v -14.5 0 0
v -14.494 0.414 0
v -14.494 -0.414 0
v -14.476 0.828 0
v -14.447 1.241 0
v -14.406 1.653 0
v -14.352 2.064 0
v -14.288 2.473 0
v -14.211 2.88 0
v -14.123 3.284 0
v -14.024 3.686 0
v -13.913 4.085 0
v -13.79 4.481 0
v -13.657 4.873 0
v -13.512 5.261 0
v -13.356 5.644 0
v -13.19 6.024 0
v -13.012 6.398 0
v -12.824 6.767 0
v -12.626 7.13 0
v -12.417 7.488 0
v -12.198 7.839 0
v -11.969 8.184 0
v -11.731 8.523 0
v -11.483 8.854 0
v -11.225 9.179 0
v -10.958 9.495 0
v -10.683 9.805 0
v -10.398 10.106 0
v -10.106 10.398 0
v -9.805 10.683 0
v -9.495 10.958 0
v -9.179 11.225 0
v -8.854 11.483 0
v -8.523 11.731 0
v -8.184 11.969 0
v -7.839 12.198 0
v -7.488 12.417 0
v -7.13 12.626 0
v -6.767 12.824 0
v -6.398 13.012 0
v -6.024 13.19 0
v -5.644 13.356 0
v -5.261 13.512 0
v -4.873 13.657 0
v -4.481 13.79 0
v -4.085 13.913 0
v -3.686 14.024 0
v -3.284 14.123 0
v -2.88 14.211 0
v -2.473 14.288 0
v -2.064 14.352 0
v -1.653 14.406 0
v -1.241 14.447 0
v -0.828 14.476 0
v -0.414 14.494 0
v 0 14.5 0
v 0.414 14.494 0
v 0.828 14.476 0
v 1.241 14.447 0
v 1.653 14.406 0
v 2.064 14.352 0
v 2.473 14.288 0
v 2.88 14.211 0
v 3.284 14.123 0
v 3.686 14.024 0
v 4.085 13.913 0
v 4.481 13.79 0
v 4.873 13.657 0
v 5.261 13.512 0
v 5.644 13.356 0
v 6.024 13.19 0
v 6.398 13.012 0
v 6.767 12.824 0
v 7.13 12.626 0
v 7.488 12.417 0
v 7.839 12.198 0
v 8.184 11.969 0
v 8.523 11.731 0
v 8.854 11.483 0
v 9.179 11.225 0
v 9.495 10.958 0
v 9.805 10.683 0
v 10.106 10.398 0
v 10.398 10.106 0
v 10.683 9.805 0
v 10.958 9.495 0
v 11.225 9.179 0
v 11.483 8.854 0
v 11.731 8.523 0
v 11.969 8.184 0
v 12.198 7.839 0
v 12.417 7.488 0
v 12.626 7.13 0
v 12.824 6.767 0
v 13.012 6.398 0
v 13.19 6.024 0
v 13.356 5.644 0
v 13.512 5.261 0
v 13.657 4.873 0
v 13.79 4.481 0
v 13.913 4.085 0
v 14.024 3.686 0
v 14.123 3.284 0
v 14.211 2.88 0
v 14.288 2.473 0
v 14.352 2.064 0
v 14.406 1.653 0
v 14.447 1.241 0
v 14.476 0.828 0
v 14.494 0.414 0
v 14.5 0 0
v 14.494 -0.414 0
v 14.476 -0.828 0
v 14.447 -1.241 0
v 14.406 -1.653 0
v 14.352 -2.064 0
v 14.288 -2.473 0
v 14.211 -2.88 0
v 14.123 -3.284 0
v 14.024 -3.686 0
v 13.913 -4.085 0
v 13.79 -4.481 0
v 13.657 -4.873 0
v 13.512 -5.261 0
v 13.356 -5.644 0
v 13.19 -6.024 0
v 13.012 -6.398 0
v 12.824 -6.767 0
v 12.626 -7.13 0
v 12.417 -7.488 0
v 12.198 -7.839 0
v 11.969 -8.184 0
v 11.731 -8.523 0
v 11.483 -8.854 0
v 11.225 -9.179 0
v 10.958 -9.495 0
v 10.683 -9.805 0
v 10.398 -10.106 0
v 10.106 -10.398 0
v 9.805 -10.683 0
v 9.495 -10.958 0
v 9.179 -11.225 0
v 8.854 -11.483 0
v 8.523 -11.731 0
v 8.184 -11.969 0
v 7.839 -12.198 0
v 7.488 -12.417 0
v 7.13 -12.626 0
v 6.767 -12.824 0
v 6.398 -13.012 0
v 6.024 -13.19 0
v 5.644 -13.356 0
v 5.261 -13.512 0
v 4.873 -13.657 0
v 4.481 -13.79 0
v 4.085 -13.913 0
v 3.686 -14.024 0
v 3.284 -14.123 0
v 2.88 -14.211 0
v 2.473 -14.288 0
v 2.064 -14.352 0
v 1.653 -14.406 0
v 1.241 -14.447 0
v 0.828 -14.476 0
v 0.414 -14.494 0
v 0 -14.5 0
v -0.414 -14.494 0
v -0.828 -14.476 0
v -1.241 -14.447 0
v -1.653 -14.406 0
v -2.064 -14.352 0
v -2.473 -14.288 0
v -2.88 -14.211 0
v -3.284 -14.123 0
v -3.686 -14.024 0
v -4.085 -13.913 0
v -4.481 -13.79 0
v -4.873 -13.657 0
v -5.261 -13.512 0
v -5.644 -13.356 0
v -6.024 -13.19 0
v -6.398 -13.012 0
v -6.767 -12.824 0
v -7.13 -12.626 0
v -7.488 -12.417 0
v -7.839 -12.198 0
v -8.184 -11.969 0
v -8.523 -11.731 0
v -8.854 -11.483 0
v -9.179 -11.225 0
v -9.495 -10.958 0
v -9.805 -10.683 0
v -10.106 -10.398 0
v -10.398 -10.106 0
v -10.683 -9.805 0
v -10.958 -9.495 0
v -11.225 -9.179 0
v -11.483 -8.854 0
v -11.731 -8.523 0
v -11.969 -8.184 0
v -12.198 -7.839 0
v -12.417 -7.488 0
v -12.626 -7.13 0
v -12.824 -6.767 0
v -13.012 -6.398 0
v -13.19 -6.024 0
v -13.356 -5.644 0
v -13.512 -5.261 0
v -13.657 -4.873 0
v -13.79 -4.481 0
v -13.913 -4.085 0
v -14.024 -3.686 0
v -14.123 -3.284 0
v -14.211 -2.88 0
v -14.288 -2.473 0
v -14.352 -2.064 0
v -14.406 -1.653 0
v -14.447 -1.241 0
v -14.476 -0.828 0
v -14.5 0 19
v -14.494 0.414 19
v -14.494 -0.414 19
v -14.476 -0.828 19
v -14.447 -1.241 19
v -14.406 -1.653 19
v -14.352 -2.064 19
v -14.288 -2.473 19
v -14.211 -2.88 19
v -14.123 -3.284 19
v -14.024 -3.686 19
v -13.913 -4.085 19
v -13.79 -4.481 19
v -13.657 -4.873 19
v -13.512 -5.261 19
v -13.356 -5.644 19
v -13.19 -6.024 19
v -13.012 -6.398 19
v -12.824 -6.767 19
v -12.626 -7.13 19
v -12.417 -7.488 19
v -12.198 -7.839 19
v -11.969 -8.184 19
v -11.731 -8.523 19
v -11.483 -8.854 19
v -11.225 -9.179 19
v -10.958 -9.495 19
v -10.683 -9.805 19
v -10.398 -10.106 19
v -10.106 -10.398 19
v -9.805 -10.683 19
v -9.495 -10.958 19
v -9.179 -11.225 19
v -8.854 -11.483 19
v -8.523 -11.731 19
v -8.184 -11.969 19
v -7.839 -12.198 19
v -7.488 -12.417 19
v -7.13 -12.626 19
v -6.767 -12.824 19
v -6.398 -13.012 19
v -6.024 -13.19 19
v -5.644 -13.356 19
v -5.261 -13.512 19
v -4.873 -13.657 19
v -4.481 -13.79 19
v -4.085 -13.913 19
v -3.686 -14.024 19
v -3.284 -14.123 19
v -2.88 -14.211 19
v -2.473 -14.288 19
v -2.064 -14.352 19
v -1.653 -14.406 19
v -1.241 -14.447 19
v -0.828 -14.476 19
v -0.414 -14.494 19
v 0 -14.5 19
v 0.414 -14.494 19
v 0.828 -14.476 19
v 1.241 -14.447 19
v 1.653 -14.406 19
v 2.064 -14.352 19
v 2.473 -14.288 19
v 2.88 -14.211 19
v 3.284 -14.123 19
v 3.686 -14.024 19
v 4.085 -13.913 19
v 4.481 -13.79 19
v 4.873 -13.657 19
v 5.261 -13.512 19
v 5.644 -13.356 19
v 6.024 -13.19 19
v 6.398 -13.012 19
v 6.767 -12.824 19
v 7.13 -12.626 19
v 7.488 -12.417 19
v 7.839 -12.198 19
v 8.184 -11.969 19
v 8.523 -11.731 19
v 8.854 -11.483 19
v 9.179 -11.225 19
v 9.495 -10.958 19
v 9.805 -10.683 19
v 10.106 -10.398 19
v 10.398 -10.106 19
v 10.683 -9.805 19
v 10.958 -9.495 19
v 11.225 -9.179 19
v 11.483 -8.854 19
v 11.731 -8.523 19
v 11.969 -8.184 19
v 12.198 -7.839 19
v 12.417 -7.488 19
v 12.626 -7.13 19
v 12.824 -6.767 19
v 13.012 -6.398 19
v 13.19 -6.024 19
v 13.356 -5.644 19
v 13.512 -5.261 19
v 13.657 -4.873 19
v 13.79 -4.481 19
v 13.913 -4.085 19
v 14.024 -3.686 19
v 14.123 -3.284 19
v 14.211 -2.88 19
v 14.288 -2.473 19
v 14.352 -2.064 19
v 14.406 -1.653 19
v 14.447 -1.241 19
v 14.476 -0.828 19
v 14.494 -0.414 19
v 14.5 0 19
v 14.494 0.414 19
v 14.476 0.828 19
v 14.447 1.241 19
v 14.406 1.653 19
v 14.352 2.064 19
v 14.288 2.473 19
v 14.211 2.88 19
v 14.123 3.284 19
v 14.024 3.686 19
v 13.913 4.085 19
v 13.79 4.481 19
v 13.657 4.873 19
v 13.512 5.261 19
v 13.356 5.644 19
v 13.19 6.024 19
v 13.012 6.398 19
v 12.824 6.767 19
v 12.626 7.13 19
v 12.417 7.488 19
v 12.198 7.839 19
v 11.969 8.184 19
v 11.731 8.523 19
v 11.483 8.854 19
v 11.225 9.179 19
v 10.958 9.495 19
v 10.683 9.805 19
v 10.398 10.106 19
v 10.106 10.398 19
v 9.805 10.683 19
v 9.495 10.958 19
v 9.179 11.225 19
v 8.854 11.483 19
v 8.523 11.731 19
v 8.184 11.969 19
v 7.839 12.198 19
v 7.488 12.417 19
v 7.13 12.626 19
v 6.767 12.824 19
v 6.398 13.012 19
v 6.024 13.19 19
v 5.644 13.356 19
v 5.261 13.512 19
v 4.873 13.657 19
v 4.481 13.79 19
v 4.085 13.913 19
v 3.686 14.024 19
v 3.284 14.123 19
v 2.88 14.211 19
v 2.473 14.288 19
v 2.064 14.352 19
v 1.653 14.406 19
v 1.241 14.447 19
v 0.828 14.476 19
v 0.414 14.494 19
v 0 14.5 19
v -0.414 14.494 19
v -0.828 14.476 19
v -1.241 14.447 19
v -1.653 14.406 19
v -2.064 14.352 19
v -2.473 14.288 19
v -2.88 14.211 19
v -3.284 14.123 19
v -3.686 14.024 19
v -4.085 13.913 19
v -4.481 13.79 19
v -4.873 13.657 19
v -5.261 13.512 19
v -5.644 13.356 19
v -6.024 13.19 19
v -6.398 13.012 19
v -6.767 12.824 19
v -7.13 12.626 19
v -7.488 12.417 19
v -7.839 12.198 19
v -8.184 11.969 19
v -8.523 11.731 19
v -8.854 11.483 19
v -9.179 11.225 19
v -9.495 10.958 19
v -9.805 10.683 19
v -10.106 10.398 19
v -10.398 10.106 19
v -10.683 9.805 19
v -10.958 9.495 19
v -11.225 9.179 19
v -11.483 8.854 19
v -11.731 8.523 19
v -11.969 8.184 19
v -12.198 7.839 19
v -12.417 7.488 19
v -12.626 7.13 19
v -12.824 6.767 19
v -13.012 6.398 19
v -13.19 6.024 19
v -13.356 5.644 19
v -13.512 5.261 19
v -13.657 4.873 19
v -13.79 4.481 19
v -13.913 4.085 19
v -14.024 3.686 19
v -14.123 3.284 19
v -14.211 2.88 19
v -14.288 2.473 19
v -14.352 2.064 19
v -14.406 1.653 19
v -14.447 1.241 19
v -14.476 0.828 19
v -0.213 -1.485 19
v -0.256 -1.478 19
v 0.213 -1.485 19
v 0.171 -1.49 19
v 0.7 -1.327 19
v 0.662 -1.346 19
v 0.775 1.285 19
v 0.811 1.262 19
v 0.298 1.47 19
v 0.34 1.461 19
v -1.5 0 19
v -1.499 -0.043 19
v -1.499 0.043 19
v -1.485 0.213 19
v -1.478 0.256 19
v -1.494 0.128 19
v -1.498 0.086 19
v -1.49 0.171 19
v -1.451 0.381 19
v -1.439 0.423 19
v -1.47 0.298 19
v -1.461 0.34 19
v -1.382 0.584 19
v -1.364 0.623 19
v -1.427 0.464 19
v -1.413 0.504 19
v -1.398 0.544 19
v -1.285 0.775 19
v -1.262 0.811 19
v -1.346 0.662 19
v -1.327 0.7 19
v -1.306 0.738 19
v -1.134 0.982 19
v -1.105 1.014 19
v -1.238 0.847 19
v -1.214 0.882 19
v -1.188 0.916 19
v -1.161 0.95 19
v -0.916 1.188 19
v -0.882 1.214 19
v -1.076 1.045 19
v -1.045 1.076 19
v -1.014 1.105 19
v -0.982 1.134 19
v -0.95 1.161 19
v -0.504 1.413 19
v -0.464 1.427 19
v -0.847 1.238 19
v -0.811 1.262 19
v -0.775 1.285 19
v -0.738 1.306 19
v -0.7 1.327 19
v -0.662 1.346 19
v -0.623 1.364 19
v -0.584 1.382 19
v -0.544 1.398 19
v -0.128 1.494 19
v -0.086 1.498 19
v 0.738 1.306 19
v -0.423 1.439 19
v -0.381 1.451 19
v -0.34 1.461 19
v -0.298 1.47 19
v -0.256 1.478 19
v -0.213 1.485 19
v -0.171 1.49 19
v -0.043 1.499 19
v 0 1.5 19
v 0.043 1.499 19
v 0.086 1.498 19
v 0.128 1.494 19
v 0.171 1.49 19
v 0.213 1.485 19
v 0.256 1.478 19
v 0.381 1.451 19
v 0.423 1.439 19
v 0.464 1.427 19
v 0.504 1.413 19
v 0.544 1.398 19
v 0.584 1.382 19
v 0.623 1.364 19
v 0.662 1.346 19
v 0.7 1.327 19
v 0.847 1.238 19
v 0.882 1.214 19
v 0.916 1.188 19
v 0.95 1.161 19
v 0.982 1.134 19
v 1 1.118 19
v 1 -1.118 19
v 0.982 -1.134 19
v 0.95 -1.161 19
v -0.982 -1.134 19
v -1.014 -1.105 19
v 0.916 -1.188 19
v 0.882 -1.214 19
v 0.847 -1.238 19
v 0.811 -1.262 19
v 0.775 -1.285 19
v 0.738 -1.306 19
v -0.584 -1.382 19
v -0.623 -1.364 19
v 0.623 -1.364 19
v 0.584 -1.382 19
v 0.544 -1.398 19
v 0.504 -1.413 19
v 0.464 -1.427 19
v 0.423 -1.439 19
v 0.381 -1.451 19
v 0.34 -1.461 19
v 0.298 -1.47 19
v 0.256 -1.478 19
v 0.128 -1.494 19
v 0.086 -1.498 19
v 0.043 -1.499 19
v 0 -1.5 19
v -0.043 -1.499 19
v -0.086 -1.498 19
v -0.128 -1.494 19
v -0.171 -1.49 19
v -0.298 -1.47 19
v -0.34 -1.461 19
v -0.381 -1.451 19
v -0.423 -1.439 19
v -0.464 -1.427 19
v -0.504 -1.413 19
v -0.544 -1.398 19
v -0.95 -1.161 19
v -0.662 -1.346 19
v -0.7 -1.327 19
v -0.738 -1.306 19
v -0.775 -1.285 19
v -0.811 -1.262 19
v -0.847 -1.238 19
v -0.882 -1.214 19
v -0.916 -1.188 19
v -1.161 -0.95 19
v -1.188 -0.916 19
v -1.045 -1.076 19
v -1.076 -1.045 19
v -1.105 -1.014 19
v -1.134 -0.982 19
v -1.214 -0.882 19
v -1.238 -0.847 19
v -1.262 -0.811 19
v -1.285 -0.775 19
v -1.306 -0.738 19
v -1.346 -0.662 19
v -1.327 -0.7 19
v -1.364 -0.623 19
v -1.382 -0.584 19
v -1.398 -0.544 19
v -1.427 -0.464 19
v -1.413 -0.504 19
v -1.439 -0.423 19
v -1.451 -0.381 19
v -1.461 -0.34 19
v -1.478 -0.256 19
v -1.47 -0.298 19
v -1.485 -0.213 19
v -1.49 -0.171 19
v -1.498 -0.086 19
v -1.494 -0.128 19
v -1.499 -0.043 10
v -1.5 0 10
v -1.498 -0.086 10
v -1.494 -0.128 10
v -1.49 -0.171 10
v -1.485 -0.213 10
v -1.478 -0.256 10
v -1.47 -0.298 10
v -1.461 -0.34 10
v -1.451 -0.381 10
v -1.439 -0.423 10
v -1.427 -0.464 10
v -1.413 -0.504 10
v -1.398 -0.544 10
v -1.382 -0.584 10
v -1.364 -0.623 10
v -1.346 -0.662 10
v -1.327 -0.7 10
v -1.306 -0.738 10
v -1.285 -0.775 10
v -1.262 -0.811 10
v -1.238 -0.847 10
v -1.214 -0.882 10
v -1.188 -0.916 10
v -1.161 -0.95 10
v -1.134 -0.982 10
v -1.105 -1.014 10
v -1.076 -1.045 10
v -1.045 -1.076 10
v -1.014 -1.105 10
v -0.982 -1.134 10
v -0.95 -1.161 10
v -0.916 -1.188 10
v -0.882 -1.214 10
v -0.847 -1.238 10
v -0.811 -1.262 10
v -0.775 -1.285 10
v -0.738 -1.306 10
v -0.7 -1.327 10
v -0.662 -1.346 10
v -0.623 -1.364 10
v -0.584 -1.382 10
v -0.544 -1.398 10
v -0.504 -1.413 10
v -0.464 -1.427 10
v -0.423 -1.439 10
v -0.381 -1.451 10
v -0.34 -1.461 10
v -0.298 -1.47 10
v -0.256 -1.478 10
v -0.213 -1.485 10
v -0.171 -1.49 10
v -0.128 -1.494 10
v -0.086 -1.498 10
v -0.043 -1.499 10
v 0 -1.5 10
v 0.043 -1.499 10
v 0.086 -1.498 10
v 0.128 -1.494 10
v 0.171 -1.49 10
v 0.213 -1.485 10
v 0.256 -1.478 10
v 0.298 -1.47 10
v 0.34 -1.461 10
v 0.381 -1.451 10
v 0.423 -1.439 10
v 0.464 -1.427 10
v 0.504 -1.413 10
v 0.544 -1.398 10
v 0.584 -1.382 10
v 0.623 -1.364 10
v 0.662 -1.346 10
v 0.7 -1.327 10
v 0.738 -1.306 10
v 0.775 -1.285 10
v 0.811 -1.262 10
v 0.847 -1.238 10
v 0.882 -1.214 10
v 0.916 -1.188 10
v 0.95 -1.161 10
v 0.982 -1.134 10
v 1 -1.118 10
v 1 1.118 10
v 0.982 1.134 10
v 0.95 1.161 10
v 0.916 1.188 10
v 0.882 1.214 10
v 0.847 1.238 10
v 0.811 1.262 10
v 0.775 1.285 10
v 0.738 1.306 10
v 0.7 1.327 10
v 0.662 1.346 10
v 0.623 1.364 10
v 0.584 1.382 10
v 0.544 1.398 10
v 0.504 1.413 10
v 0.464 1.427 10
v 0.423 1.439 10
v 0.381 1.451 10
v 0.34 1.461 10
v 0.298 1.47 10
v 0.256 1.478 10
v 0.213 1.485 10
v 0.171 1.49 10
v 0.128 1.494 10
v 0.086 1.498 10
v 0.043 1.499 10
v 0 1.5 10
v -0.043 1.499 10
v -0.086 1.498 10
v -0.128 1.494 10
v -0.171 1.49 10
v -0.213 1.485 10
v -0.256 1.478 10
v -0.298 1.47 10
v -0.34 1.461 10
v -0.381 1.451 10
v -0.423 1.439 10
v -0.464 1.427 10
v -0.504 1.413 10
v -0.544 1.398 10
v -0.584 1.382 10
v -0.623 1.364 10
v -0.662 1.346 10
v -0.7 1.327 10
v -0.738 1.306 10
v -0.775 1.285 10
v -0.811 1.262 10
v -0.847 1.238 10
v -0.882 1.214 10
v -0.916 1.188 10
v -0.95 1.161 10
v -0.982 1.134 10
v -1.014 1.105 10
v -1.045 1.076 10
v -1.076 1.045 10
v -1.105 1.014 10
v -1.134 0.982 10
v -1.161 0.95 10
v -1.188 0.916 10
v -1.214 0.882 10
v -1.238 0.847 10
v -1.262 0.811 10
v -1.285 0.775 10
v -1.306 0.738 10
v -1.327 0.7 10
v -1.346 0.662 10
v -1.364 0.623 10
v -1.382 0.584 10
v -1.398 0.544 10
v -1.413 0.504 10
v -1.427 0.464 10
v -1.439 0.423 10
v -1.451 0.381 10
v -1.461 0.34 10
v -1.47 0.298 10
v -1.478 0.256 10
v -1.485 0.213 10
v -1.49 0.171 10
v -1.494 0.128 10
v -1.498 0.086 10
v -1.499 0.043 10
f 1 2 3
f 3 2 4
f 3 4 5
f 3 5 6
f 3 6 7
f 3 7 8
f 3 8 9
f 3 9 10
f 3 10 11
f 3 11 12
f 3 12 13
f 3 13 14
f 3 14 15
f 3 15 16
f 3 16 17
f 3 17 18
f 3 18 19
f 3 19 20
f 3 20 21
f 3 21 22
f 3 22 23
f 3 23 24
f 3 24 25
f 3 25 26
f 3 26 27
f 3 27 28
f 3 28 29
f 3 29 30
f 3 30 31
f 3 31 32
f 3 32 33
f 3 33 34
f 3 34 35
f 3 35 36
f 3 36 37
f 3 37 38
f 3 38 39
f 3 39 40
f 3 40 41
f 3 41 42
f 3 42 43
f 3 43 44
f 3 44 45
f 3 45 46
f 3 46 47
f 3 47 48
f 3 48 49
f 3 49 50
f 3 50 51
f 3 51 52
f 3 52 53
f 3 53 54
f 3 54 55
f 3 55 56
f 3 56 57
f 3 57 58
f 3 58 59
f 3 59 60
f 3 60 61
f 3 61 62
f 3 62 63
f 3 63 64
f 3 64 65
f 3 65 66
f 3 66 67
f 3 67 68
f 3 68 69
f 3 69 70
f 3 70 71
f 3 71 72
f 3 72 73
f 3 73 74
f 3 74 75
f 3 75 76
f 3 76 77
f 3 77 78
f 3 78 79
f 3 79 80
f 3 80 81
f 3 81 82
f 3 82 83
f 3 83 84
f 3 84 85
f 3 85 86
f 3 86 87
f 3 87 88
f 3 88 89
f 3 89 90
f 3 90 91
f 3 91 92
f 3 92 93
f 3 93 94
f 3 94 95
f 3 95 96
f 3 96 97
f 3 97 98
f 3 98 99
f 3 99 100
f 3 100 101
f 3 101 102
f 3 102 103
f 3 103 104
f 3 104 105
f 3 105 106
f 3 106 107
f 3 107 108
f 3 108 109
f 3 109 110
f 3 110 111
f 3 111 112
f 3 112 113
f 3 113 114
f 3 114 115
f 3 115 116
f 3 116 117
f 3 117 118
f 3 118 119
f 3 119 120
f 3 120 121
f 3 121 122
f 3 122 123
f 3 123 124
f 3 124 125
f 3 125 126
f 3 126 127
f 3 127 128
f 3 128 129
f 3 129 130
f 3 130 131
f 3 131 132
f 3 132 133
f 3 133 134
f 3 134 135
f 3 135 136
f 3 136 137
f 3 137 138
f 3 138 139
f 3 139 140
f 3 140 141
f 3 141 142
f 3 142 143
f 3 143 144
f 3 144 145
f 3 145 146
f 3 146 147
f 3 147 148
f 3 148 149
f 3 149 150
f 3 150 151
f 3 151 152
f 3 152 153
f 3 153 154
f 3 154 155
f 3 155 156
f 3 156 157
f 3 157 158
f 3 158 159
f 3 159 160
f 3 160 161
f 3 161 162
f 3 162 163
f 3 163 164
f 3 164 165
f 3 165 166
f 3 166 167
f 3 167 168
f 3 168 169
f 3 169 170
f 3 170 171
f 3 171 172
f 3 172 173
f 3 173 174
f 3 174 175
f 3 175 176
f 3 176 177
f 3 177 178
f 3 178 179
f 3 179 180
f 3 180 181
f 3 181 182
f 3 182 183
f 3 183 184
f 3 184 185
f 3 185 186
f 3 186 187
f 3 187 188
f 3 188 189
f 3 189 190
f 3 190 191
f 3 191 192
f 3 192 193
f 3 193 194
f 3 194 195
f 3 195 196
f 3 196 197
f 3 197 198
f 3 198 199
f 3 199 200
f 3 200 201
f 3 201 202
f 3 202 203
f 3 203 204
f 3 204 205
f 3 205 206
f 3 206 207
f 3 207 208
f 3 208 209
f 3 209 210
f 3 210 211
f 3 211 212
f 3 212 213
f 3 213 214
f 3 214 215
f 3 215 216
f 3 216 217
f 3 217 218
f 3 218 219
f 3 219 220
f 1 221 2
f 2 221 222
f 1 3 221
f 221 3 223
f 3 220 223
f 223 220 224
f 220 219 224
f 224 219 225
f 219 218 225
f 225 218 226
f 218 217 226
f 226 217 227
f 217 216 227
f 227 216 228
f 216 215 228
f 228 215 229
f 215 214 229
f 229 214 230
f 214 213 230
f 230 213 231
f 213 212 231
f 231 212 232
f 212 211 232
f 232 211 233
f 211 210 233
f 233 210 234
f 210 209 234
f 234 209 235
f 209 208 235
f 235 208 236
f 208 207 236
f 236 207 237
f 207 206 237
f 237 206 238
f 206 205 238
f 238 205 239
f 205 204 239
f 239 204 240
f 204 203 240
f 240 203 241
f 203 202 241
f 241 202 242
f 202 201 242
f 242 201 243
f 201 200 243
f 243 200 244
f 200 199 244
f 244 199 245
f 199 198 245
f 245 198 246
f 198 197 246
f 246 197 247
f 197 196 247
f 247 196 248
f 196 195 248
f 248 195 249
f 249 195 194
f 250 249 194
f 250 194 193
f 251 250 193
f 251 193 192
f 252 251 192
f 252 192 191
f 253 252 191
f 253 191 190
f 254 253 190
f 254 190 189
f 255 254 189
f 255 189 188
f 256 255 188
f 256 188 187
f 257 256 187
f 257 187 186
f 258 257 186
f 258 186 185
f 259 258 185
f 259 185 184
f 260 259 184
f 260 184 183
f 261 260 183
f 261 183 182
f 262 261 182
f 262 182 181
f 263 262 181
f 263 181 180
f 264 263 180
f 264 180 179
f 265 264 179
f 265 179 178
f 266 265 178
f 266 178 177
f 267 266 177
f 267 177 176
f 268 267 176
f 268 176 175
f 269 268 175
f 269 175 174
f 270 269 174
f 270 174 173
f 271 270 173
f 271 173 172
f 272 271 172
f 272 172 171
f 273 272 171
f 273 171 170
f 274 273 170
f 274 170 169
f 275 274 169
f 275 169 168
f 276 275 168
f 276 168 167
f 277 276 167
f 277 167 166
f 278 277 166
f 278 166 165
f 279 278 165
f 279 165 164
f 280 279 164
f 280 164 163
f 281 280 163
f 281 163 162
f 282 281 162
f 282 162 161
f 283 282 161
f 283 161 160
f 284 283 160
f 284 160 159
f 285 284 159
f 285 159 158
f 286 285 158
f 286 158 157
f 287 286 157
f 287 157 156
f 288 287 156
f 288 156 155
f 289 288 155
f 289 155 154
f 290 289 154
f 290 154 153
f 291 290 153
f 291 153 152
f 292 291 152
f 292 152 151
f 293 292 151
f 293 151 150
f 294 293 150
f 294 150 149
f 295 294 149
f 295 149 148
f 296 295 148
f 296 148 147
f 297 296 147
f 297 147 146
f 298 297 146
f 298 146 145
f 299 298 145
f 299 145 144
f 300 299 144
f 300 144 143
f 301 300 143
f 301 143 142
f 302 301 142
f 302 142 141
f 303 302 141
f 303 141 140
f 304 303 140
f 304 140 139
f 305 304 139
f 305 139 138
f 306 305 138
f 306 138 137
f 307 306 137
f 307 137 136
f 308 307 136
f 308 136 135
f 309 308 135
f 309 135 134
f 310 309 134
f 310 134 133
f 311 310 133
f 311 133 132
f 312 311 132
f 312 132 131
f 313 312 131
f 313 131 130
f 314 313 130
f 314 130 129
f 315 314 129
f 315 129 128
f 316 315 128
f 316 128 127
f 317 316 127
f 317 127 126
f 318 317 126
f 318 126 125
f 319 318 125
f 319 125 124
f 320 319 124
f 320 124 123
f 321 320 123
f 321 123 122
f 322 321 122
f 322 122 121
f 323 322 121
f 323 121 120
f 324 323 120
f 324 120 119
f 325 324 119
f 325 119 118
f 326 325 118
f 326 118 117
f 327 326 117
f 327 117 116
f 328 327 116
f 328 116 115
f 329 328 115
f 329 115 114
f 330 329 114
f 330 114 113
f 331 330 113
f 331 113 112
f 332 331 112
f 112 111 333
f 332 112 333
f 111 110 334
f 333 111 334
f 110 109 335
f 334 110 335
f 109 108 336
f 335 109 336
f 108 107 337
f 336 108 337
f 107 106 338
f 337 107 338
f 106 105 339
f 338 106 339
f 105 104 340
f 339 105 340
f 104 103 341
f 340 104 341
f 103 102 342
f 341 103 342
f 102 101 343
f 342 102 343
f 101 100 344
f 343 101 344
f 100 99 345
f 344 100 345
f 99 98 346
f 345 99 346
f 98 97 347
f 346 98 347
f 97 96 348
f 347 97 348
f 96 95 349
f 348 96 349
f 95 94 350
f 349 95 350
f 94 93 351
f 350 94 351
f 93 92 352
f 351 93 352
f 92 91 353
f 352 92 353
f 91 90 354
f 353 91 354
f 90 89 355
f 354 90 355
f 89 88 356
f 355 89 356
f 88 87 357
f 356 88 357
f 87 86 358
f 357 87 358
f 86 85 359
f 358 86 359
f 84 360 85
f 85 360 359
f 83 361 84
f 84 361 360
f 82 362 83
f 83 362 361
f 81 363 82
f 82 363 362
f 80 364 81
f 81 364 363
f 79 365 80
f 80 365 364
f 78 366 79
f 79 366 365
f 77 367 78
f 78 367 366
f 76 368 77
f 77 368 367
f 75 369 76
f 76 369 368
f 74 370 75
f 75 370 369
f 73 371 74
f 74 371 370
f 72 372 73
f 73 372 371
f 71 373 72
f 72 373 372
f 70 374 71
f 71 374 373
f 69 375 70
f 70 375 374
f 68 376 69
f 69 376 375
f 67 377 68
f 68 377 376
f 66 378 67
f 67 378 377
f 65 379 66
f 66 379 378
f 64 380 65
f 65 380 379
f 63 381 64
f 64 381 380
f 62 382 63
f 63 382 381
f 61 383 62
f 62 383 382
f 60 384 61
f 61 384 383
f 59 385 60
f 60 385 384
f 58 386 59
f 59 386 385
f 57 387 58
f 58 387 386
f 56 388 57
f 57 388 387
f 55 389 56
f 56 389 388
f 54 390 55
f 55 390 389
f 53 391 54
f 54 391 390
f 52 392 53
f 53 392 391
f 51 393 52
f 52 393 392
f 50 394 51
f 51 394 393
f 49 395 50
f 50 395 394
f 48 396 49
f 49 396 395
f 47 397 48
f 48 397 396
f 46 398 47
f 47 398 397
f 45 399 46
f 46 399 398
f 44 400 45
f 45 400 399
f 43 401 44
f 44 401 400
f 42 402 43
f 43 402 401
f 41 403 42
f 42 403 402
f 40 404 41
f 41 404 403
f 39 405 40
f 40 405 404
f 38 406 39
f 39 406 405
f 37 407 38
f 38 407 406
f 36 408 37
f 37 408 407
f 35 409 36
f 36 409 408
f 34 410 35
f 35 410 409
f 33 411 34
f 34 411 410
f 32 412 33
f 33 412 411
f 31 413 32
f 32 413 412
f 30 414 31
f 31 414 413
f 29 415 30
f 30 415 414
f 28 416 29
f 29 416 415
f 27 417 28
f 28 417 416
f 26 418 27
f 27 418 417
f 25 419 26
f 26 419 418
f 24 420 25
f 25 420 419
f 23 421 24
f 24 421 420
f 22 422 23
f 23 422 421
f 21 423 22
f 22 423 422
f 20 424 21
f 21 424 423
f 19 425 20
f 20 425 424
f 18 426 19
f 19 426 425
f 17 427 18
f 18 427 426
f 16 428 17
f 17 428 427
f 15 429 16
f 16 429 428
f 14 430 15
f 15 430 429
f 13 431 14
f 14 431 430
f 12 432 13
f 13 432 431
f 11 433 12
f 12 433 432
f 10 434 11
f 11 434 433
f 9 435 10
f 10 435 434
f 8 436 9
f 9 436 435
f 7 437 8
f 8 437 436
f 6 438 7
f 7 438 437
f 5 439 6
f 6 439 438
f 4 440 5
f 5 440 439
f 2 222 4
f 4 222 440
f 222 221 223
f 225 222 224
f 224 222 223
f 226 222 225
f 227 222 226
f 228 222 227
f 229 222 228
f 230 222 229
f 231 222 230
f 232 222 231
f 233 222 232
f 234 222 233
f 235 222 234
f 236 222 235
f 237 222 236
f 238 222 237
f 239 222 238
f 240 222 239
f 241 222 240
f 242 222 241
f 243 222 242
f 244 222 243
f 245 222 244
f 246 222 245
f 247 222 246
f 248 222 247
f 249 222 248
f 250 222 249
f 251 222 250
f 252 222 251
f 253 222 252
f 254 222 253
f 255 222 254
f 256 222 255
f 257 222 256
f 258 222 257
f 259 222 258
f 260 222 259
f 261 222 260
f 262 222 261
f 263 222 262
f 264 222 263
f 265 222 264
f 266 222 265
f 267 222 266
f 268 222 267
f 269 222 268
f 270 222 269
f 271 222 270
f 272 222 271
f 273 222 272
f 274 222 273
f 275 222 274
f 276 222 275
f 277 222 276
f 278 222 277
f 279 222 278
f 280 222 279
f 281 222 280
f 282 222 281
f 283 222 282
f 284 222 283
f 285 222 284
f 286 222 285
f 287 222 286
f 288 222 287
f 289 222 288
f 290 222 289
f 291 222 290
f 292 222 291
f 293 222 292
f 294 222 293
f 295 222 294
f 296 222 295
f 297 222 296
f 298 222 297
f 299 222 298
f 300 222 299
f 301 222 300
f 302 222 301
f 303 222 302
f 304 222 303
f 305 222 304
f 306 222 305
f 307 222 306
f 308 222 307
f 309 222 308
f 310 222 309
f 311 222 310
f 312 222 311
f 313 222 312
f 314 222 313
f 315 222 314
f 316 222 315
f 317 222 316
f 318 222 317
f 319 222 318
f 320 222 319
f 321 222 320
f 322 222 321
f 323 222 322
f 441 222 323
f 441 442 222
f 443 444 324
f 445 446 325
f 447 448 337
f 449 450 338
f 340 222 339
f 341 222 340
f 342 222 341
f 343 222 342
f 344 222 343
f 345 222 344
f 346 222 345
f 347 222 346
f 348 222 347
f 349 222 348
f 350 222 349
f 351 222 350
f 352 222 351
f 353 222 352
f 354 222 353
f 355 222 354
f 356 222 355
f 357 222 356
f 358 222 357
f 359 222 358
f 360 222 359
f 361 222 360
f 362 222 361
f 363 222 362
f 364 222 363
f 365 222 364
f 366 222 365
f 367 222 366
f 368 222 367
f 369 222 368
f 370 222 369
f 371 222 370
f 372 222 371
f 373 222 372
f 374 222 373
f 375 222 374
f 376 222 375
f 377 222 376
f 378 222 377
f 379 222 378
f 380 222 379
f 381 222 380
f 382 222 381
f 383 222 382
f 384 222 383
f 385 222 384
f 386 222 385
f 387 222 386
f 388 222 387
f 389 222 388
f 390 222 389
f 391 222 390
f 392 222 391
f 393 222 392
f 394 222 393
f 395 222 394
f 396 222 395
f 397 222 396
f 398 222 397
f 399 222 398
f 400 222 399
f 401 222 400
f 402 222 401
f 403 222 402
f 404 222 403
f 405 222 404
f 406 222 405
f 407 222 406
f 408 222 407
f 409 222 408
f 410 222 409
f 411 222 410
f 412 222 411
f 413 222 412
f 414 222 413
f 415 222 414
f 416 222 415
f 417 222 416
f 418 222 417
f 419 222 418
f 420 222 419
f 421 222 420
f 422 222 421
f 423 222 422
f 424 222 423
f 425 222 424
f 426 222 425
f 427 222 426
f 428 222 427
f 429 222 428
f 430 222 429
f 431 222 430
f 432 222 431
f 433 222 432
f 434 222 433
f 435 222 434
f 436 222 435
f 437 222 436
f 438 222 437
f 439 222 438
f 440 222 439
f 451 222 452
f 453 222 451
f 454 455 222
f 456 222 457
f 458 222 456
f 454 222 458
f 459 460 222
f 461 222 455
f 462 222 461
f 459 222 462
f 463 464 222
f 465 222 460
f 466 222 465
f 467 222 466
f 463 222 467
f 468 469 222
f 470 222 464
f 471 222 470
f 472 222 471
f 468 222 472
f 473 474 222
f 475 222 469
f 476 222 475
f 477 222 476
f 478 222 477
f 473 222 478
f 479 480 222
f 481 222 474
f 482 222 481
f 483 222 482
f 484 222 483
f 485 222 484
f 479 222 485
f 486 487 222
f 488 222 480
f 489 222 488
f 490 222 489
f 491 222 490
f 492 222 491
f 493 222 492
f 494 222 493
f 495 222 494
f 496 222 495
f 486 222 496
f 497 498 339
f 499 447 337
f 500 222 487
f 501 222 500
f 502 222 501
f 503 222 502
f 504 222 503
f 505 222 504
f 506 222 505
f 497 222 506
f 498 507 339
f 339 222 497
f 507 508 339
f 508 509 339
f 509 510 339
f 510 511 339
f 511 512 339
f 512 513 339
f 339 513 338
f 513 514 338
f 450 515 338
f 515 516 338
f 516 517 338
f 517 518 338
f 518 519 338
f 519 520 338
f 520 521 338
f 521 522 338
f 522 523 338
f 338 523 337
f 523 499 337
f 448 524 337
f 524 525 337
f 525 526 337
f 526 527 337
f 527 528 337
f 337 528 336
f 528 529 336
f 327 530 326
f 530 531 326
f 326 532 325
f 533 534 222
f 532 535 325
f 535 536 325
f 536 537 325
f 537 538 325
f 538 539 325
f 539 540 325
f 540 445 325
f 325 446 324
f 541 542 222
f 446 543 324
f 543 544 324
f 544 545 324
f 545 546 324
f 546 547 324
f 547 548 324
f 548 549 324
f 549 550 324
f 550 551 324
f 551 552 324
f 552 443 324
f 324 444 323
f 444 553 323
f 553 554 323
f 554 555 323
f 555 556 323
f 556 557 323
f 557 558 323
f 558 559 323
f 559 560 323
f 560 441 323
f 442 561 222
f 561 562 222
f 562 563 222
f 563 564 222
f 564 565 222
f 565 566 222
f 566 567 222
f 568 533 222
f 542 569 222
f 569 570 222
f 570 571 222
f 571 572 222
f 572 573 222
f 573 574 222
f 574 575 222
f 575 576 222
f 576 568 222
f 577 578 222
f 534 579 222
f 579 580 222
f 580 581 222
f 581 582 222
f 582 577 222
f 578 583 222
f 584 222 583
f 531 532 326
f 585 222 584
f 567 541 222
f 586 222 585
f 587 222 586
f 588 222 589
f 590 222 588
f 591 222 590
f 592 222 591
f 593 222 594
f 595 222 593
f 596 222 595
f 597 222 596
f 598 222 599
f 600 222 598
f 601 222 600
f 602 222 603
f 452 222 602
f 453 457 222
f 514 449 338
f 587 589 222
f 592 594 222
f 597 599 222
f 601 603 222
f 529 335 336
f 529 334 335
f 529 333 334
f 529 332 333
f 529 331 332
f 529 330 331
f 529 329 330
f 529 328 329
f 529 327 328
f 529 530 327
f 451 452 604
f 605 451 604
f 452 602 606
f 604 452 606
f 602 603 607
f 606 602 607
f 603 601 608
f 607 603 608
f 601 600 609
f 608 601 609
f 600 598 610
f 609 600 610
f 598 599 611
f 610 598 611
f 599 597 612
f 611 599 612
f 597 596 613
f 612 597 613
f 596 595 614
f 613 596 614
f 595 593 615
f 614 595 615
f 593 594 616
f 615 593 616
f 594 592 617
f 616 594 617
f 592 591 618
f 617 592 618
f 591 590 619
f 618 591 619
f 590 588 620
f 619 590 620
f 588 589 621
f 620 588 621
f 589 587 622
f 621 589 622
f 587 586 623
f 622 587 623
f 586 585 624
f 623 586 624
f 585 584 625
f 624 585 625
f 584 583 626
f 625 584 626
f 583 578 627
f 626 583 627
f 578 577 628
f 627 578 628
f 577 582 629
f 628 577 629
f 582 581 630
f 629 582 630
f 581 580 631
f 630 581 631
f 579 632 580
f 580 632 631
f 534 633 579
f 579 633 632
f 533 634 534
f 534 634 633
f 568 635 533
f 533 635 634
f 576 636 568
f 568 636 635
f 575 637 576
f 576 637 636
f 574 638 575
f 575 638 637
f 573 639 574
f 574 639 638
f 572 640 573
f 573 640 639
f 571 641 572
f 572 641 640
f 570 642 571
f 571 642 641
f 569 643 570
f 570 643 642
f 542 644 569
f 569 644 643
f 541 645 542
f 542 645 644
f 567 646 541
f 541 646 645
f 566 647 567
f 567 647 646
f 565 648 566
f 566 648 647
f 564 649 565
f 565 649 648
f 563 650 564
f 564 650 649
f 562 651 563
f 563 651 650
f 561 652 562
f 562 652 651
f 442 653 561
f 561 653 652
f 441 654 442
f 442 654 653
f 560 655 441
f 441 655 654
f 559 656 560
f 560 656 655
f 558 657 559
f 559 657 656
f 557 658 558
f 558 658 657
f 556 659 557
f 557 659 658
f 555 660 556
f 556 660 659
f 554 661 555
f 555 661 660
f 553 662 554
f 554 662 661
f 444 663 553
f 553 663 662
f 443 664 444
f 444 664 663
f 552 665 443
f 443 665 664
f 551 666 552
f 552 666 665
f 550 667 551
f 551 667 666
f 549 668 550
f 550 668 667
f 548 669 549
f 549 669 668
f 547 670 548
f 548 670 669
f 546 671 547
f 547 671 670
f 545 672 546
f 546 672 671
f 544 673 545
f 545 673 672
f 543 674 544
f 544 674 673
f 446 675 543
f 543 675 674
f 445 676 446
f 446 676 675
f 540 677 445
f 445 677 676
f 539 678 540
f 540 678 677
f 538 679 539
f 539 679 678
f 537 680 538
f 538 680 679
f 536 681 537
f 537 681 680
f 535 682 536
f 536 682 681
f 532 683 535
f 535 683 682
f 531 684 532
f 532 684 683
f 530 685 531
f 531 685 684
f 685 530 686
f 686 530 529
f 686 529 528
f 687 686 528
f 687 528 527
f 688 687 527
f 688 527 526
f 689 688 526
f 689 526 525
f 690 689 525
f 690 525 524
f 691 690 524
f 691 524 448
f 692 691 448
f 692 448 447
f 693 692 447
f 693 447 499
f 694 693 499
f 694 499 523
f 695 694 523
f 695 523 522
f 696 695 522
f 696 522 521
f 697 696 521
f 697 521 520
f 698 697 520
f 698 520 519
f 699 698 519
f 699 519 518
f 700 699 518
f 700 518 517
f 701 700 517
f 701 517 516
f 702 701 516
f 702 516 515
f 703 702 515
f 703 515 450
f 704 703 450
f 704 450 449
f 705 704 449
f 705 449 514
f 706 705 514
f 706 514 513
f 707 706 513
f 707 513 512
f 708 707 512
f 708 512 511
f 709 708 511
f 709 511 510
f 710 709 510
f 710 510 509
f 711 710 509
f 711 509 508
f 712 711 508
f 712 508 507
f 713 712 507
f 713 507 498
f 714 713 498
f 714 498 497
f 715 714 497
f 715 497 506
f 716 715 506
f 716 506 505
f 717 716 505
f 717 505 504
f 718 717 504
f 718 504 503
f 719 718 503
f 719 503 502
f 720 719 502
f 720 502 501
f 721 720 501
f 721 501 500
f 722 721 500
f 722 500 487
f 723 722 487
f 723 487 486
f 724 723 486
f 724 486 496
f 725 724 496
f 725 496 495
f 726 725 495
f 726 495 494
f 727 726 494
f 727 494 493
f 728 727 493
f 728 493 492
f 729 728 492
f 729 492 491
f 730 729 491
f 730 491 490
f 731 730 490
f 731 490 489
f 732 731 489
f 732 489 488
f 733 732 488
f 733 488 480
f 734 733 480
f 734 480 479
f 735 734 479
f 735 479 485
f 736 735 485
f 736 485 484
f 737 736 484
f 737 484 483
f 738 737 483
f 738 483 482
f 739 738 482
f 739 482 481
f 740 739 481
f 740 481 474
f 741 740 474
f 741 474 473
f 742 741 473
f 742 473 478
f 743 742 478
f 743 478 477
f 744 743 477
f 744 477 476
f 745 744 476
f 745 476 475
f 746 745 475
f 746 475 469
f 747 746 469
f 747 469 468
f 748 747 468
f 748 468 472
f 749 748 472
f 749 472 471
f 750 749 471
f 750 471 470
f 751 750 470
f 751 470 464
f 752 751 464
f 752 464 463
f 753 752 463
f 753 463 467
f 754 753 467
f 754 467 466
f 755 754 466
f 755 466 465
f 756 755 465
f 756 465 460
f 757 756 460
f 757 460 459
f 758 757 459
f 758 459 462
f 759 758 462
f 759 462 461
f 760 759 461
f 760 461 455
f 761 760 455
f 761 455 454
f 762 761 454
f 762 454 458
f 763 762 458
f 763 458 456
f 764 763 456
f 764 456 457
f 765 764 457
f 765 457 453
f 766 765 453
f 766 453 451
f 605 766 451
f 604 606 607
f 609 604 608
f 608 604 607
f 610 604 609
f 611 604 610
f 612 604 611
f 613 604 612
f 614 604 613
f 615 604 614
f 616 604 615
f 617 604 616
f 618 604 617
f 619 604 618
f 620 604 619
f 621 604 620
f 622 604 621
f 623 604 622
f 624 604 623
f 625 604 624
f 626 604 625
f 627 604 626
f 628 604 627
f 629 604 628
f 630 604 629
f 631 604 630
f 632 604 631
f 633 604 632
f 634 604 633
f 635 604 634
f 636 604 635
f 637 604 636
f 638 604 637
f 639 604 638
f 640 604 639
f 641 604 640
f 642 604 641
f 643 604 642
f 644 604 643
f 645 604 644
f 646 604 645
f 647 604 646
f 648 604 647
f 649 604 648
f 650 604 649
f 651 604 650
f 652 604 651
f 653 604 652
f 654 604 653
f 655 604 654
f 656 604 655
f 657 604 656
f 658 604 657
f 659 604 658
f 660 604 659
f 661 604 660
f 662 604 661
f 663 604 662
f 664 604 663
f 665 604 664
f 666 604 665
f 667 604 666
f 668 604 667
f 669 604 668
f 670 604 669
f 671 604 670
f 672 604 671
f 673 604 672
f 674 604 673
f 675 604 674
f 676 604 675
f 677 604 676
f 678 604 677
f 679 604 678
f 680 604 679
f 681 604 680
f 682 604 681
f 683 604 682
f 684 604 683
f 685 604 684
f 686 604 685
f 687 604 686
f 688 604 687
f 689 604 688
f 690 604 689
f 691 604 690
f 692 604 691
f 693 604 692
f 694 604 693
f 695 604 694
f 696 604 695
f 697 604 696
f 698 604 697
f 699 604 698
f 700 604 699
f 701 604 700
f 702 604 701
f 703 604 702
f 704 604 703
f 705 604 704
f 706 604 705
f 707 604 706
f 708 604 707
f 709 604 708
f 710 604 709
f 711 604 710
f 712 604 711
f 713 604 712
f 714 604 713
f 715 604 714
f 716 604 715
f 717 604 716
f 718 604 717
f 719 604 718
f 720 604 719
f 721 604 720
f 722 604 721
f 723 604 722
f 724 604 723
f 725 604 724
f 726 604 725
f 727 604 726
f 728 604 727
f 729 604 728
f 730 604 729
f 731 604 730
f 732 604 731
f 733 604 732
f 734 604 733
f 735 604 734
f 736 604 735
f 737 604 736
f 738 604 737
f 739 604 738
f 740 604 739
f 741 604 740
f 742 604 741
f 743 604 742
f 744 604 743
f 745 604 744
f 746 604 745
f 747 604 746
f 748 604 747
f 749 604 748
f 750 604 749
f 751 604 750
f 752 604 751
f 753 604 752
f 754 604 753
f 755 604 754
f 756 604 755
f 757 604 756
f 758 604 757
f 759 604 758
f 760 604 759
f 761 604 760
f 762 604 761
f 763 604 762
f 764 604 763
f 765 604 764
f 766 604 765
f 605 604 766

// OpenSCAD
$fn=220;
color([1,1,1])difference()
{
  cylinder(r=14.5,h=19);
  translate([0,0,10])difference()
  {
   cylinder(r=1.5,h=10.5);
   translate([1,-2.5,-0.5])cube([5,5,21]); 
  }
}
